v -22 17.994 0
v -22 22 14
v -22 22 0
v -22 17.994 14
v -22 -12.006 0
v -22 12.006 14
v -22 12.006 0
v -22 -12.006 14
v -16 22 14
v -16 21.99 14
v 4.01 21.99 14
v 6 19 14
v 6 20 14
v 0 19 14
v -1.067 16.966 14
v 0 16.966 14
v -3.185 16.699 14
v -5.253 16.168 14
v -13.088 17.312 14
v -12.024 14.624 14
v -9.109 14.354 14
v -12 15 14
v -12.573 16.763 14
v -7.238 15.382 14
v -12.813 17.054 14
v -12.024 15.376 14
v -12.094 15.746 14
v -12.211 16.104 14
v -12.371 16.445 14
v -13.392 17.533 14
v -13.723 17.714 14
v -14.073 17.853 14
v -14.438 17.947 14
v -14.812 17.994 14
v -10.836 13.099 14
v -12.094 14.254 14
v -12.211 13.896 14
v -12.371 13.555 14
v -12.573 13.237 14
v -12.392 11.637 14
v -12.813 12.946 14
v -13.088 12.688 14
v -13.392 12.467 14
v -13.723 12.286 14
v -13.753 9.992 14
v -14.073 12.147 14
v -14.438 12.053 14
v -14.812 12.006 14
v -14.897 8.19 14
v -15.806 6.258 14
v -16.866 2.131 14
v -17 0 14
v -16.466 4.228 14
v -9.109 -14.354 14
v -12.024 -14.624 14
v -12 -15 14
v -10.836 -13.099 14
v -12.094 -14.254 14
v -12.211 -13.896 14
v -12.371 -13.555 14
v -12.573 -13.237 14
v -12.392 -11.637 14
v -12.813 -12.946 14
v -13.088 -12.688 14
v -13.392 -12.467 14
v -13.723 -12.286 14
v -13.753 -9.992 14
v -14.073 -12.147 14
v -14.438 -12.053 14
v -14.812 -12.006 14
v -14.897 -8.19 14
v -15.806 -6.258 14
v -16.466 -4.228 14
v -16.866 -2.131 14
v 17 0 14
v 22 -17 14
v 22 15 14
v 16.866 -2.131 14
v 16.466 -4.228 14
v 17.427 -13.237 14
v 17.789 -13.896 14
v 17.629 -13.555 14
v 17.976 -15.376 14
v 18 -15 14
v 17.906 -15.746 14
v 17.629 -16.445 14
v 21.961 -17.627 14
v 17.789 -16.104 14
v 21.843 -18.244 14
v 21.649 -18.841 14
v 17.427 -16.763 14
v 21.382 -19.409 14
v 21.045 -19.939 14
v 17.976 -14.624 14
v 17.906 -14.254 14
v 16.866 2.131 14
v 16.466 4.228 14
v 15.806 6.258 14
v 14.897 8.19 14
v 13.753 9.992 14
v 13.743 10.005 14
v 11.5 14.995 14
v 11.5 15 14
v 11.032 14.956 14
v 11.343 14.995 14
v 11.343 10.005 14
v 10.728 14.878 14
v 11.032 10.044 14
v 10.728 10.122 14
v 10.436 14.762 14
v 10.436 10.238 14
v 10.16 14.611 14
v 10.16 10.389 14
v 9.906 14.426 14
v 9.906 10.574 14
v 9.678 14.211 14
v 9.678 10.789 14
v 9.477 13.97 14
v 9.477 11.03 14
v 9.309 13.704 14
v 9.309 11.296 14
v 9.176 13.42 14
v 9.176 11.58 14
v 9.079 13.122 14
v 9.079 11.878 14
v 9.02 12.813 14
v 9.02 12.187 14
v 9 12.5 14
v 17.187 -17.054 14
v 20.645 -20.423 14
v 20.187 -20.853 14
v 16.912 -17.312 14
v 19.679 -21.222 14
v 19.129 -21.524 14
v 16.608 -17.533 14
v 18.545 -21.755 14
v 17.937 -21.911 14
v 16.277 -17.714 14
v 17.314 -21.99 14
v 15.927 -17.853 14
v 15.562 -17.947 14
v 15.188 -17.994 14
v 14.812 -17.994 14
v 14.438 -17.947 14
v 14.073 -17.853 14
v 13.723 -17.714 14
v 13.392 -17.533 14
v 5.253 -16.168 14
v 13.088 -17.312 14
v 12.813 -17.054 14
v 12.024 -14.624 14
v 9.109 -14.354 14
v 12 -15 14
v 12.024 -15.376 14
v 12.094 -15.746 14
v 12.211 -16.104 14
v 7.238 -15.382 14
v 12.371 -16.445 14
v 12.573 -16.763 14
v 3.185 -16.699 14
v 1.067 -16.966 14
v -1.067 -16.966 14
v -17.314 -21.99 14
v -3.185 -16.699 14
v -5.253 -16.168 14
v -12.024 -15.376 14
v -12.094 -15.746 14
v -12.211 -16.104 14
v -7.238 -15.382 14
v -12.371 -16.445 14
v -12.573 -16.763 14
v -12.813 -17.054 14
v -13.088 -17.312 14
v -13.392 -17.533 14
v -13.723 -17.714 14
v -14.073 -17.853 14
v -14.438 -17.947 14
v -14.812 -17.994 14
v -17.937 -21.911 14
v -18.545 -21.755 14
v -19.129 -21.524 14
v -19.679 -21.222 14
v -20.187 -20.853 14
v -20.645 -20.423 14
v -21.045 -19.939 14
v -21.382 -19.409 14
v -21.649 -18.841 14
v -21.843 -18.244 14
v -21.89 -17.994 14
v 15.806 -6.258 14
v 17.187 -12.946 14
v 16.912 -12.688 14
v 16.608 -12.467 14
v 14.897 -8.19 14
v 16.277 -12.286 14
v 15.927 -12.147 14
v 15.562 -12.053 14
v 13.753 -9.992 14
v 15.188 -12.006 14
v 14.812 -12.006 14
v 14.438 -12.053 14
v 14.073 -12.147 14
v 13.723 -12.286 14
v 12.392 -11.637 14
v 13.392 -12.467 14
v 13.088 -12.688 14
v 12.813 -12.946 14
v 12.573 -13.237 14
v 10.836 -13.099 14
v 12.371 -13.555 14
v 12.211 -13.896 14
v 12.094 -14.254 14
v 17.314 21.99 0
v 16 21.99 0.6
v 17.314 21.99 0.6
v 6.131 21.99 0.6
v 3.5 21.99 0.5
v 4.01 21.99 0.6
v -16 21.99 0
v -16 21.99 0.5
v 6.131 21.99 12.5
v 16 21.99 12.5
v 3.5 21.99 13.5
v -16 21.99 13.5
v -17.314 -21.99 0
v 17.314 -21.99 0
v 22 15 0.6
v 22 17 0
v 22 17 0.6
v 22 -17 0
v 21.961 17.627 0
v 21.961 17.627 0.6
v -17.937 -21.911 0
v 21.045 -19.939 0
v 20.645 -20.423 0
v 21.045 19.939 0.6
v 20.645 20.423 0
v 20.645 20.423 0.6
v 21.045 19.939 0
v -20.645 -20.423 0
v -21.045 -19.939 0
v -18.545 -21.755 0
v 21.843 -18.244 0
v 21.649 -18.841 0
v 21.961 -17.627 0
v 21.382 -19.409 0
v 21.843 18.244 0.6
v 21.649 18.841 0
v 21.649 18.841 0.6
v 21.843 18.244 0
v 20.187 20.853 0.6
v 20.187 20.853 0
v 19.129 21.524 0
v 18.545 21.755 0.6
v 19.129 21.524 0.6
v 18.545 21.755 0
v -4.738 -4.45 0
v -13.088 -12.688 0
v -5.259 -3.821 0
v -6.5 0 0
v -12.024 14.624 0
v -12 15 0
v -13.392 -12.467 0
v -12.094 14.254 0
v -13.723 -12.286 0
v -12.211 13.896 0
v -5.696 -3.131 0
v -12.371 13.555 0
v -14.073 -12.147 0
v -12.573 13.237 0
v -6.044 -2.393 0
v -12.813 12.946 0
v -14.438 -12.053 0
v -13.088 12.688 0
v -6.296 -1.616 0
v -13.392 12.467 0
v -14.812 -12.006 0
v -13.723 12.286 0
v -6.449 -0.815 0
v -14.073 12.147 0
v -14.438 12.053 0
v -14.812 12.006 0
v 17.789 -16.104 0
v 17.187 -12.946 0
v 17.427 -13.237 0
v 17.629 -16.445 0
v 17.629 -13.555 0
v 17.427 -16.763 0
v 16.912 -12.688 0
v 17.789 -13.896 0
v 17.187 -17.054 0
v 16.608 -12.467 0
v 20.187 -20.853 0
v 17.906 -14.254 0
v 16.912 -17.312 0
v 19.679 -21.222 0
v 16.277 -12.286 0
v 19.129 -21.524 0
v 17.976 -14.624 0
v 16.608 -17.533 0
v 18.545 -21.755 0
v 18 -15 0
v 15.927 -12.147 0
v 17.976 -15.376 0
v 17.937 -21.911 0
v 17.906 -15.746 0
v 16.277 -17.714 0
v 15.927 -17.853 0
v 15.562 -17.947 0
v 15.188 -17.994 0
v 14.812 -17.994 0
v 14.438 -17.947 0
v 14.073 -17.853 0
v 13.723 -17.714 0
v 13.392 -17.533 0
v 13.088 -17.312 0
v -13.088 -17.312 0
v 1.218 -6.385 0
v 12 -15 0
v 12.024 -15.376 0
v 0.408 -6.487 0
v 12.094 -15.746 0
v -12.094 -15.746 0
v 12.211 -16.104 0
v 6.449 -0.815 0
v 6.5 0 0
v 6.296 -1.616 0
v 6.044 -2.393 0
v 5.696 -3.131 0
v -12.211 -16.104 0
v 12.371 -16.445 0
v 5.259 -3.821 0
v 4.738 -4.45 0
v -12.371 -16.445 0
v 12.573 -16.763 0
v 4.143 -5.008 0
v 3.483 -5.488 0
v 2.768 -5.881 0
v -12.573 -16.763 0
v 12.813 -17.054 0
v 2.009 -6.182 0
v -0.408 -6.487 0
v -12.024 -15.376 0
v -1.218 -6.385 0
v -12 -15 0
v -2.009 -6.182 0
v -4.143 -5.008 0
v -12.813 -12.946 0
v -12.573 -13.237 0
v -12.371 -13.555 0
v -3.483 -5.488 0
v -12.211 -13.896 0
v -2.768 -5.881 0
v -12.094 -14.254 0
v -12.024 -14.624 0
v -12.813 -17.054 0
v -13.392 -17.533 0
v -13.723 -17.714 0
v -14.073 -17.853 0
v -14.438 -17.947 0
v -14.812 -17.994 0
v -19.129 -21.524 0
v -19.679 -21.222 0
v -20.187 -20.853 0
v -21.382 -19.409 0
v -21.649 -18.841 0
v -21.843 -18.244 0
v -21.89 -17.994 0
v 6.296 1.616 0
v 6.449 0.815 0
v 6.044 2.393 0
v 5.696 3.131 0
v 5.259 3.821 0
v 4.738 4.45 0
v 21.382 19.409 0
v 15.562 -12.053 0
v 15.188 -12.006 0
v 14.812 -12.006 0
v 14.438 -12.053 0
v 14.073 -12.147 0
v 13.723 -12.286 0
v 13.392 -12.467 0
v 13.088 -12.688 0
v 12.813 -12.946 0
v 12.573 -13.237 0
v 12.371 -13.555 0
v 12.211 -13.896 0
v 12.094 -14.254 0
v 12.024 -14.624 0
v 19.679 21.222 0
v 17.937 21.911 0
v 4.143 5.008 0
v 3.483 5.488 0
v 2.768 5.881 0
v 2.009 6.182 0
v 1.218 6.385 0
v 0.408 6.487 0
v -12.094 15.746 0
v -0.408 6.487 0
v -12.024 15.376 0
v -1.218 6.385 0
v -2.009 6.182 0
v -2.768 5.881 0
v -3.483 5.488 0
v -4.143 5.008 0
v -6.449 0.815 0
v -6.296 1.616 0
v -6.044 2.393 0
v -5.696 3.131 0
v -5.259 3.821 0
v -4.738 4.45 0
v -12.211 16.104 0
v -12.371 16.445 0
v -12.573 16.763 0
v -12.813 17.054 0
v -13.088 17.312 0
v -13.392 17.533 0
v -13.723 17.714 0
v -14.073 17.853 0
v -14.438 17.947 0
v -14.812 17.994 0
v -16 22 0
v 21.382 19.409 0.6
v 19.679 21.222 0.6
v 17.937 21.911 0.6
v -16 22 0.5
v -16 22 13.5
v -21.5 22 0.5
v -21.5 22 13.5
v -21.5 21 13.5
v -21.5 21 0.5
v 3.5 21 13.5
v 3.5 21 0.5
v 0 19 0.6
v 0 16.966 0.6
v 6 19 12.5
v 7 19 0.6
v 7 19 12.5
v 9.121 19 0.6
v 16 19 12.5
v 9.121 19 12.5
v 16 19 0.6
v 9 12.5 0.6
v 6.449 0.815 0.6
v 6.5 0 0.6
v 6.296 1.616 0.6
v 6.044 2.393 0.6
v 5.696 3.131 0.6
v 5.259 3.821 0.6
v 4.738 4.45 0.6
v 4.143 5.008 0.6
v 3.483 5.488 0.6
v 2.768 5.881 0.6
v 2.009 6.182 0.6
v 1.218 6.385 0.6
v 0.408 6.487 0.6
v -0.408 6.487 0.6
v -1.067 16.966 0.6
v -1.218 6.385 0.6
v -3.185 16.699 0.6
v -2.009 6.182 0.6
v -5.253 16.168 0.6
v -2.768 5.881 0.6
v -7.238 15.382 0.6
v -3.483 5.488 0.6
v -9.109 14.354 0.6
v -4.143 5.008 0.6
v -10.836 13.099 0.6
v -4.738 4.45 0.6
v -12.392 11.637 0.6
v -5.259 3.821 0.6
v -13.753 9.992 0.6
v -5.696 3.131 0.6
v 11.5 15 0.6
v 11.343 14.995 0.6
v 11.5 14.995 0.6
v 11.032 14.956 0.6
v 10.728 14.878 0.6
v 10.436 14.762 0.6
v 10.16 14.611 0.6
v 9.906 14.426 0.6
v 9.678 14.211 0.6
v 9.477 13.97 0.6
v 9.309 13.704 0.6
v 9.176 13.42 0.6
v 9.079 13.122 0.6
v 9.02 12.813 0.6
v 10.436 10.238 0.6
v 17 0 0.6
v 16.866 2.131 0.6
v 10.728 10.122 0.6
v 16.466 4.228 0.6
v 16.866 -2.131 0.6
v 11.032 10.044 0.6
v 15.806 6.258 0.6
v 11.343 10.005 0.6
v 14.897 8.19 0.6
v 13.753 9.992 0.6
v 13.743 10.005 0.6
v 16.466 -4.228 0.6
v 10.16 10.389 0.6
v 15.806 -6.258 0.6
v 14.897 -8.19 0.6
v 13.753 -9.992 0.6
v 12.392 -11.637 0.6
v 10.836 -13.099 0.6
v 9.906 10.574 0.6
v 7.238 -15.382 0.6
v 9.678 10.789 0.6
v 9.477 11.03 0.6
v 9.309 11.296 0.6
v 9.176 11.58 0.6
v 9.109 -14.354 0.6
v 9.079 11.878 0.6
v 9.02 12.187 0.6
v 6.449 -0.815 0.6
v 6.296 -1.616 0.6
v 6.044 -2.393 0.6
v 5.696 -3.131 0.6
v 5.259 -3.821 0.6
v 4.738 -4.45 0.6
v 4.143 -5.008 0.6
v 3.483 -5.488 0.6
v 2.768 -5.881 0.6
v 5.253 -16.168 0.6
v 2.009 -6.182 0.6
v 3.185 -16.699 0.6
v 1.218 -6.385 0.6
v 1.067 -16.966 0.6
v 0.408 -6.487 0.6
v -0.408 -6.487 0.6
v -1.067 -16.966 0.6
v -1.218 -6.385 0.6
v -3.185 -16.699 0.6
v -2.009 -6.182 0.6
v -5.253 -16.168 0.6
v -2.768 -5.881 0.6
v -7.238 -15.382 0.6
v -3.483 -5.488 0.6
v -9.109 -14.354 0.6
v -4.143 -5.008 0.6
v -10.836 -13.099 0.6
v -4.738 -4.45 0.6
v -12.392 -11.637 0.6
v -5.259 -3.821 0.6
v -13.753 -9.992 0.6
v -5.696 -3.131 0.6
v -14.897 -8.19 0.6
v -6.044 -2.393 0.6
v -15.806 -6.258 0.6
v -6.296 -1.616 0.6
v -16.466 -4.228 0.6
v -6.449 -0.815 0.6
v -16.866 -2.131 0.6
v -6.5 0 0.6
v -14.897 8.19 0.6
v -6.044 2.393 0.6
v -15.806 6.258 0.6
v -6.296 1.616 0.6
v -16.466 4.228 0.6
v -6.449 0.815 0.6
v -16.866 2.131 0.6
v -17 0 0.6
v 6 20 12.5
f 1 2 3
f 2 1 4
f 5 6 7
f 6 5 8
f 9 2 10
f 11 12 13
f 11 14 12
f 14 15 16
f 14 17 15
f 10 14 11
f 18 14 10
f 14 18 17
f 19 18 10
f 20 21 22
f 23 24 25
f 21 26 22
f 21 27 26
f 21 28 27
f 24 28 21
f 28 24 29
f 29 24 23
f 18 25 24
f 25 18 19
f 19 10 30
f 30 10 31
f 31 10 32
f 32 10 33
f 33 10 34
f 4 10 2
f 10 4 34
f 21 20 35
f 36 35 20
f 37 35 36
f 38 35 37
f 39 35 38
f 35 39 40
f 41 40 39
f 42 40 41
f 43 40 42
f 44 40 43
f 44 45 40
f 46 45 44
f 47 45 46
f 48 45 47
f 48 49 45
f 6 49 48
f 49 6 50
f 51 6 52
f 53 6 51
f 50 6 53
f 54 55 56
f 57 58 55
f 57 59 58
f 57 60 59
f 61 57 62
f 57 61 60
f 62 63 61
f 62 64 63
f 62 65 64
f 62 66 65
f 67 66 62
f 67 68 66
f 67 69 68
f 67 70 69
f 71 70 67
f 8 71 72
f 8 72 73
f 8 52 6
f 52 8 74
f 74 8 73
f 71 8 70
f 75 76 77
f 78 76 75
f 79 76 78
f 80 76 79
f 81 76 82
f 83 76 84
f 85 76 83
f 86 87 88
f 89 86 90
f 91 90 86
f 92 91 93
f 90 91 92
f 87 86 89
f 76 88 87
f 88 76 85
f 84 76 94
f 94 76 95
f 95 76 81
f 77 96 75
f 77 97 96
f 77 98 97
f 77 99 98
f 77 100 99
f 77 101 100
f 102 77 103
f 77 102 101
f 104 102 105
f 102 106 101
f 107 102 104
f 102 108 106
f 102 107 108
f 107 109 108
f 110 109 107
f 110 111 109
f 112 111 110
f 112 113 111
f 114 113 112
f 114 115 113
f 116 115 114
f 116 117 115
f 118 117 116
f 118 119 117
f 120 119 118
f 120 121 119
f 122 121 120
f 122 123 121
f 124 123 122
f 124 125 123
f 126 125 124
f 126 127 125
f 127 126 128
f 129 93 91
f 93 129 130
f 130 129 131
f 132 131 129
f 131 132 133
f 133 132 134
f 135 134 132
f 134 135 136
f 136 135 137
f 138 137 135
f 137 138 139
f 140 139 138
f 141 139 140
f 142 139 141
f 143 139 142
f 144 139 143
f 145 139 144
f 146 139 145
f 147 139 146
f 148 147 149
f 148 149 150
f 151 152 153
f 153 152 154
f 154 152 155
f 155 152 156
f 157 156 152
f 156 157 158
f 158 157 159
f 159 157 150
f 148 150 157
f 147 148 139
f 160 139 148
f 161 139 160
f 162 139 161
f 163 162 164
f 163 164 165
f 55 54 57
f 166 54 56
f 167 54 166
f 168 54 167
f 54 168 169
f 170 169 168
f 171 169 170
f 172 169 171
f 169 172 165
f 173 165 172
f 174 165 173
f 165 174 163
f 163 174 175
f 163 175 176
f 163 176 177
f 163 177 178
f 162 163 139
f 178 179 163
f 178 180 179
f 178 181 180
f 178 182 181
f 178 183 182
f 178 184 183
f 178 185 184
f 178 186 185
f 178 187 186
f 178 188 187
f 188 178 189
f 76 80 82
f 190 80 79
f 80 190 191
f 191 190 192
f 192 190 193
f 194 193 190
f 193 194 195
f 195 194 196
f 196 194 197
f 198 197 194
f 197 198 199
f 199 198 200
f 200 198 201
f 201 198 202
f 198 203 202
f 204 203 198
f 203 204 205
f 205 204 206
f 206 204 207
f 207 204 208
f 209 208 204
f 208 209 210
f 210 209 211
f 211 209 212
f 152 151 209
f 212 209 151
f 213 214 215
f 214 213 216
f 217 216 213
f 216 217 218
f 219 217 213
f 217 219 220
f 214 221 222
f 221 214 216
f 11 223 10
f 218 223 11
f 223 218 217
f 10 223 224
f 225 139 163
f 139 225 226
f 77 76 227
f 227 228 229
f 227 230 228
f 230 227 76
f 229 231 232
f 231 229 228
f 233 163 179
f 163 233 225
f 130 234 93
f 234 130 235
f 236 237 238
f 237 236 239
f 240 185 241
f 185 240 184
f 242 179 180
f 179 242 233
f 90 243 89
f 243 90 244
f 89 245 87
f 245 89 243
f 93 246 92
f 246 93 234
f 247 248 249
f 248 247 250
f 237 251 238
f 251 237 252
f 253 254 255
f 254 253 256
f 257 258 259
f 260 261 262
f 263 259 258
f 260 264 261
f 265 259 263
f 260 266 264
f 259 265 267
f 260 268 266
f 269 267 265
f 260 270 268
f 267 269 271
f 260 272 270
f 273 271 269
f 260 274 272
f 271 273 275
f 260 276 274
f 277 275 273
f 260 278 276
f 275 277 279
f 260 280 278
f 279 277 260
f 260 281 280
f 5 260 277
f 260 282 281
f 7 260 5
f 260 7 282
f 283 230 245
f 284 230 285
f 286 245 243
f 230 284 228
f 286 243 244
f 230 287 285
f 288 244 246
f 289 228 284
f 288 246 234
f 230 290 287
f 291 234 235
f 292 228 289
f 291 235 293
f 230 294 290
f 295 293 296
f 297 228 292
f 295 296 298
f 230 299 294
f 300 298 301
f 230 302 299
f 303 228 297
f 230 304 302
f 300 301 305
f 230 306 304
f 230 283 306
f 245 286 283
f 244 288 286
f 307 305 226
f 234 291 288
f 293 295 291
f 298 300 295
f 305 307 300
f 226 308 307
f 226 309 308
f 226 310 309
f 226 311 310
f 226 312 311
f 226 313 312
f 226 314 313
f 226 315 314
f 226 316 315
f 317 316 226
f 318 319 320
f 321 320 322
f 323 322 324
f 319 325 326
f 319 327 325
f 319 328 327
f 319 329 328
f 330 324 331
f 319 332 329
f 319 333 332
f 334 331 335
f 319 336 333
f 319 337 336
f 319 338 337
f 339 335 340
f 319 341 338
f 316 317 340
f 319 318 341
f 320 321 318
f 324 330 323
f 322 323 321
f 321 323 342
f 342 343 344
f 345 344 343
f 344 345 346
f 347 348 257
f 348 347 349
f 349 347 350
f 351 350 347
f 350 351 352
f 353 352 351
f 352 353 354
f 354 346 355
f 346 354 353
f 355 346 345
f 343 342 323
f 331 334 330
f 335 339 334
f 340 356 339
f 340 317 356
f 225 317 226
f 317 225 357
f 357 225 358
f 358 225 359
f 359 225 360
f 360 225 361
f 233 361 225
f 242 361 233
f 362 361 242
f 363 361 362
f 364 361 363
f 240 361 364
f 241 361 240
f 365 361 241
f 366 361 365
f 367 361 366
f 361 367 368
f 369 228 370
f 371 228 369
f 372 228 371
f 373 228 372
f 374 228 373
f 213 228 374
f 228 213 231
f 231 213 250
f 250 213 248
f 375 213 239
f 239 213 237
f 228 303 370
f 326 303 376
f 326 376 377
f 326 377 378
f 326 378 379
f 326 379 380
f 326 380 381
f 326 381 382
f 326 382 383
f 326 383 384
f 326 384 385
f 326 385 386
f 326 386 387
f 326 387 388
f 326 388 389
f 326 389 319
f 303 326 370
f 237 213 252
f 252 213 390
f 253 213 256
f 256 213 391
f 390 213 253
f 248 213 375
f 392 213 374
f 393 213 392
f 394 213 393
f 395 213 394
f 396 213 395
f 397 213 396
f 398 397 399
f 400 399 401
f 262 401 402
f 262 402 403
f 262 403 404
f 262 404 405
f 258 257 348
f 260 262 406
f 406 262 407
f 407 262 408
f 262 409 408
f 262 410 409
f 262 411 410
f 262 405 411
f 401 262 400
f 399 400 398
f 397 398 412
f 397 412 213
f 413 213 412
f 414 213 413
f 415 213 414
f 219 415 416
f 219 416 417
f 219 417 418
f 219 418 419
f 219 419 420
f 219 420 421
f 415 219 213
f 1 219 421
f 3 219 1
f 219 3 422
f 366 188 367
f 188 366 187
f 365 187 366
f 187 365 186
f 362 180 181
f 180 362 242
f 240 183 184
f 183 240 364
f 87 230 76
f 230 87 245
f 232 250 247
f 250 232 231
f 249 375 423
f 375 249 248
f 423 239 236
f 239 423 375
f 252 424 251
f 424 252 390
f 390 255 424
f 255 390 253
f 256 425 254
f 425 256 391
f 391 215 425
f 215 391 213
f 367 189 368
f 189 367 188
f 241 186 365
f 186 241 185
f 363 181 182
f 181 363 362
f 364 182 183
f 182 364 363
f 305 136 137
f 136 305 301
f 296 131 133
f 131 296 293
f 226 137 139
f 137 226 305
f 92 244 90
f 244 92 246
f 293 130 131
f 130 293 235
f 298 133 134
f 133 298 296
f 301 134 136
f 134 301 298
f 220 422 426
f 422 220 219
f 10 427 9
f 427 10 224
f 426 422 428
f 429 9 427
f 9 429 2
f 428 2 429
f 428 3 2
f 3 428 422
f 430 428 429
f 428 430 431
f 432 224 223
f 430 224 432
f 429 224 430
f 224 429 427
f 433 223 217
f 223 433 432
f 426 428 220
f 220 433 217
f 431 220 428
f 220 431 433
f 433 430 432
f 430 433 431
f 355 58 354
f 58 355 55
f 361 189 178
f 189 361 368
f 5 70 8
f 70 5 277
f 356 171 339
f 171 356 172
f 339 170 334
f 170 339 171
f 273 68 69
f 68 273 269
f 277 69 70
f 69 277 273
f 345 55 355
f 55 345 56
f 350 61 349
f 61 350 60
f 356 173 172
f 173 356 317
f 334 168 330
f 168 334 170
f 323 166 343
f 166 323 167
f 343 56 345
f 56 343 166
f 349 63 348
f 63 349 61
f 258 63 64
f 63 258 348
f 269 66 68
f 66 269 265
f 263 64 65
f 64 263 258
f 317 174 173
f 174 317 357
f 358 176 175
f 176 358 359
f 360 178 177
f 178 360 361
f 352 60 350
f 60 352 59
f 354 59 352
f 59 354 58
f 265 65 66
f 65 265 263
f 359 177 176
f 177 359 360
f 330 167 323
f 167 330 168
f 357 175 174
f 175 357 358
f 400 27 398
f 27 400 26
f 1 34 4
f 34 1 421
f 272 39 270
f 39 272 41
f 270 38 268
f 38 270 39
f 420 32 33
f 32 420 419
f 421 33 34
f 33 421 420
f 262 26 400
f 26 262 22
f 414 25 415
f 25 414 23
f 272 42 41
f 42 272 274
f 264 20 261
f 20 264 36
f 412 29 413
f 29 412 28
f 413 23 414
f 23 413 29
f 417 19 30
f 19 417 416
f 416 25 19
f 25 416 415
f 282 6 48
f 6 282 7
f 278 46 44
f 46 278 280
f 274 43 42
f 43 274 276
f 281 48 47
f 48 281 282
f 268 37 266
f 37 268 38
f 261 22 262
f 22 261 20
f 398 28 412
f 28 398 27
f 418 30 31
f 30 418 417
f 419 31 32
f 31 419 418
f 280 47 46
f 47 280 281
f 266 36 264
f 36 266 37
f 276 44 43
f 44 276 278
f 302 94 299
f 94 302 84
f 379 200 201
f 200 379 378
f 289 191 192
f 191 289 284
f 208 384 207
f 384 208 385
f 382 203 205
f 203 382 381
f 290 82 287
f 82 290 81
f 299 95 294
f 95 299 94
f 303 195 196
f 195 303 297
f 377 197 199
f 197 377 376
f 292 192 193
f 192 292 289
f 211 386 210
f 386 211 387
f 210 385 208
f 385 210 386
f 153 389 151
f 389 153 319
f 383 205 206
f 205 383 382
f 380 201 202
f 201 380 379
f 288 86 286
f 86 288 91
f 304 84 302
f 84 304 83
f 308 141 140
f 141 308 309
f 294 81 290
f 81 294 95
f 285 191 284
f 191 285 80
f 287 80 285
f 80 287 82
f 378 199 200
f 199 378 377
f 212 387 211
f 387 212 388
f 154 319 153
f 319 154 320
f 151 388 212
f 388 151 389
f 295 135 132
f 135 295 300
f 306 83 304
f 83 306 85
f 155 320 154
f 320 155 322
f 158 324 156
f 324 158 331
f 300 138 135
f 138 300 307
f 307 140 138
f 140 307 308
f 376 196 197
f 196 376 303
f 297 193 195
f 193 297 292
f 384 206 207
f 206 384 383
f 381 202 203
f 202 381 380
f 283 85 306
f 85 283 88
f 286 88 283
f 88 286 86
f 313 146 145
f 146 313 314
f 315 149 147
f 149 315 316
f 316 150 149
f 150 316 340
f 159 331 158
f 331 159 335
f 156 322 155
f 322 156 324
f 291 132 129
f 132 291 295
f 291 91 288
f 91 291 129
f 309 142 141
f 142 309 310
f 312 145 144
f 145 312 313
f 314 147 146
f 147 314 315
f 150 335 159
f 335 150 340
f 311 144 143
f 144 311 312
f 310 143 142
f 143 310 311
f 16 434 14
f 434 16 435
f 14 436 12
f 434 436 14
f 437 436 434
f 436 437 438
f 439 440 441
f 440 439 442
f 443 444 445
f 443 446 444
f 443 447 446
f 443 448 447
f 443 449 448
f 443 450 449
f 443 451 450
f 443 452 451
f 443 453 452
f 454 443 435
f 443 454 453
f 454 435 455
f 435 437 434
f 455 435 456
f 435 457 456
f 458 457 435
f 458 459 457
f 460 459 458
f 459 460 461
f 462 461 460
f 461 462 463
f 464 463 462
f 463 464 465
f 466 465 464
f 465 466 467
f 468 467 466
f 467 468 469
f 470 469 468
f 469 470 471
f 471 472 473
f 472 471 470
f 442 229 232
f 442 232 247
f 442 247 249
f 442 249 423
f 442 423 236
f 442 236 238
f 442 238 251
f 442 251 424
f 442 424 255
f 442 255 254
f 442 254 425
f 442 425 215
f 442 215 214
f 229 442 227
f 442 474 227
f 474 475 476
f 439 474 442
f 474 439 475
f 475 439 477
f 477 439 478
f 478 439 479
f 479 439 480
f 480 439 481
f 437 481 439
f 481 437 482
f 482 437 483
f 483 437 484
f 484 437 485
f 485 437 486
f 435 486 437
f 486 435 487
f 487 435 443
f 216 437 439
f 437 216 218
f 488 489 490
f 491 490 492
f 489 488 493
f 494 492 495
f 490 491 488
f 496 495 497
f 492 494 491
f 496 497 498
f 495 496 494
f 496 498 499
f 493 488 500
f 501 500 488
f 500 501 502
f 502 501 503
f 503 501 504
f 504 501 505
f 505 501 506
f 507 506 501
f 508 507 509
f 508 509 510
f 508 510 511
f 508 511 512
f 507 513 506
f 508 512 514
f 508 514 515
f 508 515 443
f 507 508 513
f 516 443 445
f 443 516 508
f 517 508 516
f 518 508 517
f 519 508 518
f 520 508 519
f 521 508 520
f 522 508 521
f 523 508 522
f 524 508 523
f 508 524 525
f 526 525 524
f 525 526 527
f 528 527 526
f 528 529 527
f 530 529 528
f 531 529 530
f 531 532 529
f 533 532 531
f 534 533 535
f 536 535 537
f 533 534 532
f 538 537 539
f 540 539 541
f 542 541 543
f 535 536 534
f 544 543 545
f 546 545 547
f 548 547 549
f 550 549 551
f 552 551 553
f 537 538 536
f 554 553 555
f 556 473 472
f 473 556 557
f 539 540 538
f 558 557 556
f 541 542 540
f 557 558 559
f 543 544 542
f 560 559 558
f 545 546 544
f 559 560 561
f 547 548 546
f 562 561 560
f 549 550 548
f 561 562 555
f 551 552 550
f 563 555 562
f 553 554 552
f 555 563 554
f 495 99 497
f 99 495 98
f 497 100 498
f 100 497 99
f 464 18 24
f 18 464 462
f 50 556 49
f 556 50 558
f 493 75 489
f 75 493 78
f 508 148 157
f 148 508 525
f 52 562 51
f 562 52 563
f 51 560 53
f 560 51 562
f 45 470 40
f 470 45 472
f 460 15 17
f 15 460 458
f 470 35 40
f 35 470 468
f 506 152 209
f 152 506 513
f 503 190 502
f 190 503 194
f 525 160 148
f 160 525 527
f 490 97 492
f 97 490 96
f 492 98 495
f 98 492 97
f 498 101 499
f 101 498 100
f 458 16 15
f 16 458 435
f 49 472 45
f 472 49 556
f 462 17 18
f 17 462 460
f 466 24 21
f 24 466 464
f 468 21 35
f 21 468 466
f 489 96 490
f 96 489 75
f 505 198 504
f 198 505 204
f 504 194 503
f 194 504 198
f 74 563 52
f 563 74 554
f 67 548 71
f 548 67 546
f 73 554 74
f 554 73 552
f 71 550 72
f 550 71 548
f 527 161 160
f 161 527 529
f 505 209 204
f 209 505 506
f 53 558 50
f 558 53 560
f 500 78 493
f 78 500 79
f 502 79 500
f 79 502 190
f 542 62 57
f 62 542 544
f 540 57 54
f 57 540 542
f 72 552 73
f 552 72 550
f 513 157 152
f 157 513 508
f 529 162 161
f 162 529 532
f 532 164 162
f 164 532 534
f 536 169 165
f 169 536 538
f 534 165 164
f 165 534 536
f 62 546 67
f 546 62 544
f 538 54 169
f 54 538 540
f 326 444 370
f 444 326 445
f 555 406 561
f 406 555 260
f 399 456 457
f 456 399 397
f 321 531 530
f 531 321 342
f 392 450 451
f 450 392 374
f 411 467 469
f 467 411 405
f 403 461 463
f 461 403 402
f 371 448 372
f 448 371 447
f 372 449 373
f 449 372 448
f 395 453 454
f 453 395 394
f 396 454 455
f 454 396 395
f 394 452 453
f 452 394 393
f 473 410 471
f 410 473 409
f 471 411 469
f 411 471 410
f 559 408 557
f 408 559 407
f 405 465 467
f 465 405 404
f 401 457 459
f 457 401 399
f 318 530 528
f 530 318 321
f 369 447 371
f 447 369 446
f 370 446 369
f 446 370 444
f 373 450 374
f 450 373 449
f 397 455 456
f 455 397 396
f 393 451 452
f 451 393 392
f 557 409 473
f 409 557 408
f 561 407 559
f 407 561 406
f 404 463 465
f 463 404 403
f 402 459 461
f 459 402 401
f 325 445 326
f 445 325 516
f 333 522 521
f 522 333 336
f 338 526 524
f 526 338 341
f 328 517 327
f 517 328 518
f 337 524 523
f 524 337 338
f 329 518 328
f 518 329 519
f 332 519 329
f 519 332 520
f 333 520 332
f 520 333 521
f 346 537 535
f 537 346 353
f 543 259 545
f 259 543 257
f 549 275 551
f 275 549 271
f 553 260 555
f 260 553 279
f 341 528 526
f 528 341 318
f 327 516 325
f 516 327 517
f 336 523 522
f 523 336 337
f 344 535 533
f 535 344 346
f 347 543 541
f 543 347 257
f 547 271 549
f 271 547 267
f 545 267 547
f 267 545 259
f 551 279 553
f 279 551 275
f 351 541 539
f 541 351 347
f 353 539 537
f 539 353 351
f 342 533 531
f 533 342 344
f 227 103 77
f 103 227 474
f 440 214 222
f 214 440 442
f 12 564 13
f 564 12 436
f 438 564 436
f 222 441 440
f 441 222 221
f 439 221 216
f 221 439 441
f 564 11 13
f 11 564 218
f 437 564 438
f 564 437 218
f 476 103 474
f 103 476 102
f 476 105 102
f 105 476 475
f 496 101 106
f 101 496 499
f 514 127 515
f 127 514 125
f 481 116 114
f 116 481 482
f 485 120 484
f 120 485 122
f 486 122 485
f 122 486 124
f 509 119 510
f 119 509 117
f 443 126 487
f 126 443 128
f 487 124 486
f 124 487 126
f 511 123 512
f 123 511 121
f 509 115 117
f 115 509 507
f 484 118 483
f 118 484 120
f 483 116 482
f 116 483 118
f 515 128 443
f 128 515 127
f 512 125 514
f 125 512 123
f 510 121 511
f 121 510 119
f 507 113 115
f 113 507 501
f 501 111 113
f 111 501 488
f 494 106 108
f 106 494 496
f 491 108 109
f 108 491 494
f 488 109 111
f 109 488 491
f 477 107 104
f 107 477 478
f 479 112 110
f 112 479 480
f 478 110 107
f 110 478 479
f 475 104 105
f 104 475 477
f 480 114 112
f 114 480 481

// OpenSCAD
$fn = 50;


union() {
	difference() {
		union() {
			translate(v = [0, 0, 0]) {
				rotate(a = [0, 0, 0]) {
					hull() {
						translate(v = [-17.0000000000, 17.0000000000, 0]) {
							rotate(a = [0, 0, 0]) {
								translate(v = [0, 0, 0]) {
									rotate(a = [0, 0, 0]) {
										cylinder(h = 14, r = 5);
									}
								}
							}
						}
						translate(v = [17.0000000000, 17.0000000000, 0]) {
							rotate(a = [0, 0, 0]) {
								translate(v = [0, 0, 0]) {
									rotate(a = [0, 0, 0]) {
										cylinder(h = 14, r = 5);
									}
								}
							}
						}
						translate(v = [-17.0000000000, -17.0000000000, 0]) {
							rotate(a = [0, 0, 0]) {
								translate(v = [0, 0, 0]) {
									rotate(a = [0, 0, 0]) {
										cylinder(h = 14, r = 5);
									}
								}
							}
						}
						translate(v = [17.0000000000, -17.0000000000, 0]) {
							rotate(a = [0, 0, 0]) {
								translate(v = [0, 0, 0]) {
									rotate(a = [0, 0, 0]) {
										cylinder(h = 14, r = 5);
									}
								}
							}
						}
					}
				}
			}
			translate(v = [-22.0000000000, 16.0000000000, 0]) {
				rotate(a = [0, 0, 0]) {
					cube(size = [6, 6, 14]);
				}
			}
		}
		union() {
			#translate(v = [-21.5000000000, 21.0000000000, 0.5000000000]) {
				rotate(a = [0, 0, 0]) {
					cube(size = [25, 1, 13.0000000000]);
				}
			}
			translate(v = [-22.5000000000, -15.0000000000, -125]) {
				rotate(a = [0, 0, 0]) {
					hull() {
						translate(v = [7.5000000000, 0, 0]) {
							rotate(a = [0, 0, 0]) {
								translate(v = [0, 0, 0]) {
									rotate(a = [0, 0, 0]) {
										cylinder(h = 250, r = 3.0000000000);
									}
								}
							}
						}
						translate(v = [-7.5000000000, 0, 0]) {
							rotate(a = [0, 0, 0]) {
								translate(v = [0, 0, 0]) {
									rotate(a = [0, 0, 0]) {
										cylinder(h = 250, r = 3.0000000000);
									}
								}
							}
						}
					}
				}
			}
			translate(v = [-22.5000000000, 15.0000000000, -125]) {
				rotate(a = [0, 0, 0]) {
					hull() {
						translate(v = [7.5000000000, 0, 0]) {
							rotate(a = [0, 0, 0]) {
								translate(v = [0, 0, 0]) {
									rotate(a = [0, 0, 0]) {
										cylinder(h = 250, r = 3.0000000000);
									}
								}
							}
						}
						translate(v = [-7.5000000000, 0, 0]) {
							rotate(a = [0, 0, 0]) {
								translate(v = [0, 0, 0]) {
									rotate(a = [0, 0, 0]) {
										cylinder(h = 250, r = 3.0000000000);
									}
								}
							}
						}
					}
				}
			}
			translate(v = [15.0000000000, -15.0000000000, -125.0000000000]) {
				rotate(a = [0, 0, 0]) {
					cylinder(h = 250, r = 3.0000000000);
				}
			}
			translate(v = [0.0000000000, 11.0000000000, 0.6000000000]) {
				rotate(a = [0, 0, 0]) {
					cube(size = [11, 8, 16.4000000000]);
				}
			}
			translate(v = [0, 0, 0.6000000000]) {
				rotate(a = [0, 0, 0]) {
					cylinder(h = 16.4000000000, r = 17.0000000000);
				}
			}
			translate(v = [0, 0, -7.0000000000]) {
				rotate(a = [0, 0, 0]) {
					cylinder(h = 14, r = 6.5000000000);
				}
			}
			translate(v = [0.0000000000, 15.0000000000, 0.6000000000]) {
				rotate(a = [0, 0, 0]) {
					cube(size = [22.0000000000, 4, 16.4000000000]);
				}
			}
			translate(v = [16.0000000000, 15.0000000000, 0.6000000000]) {
				rotate(a = [0, 0, 0]) {
					cube(size = [6, 7, 16.4000000000]);
				}
			}
			translate(v = [6.0000000000, 15.0000000000, 12.5000000000]) {
				rotate(a = [0, 0, 0]) {
					cube(size = [16, 7, 1.5000000000]);
				}
			}
			translate(v = [3.2500000000, 22.7500000000, 0.6000000000]) {
				rotate(a = [0, 0, -45]) {
					cube(size = [7.5000000000, 1.5000000000, 16.4000000000]);
				}
			}
			translate(v = [2.5000000000, 10.0000000000, 0.6000000000]) {
				rotate(a = [0, 0, 0]) {
					cube(size = [9.0000000000, 5, 13.4000000000]);
				}
			}
		}
	}
	union() {
		translate(v = [14, 12.5000000000, 0]) {
			rotate(a = [0, 0, 0]) {
				hull() {
					translate(v = [2.5000000000, 0, 0]) {
						rotate(a = [0, 0, 0]) {
							#translate(v = [0, 0, 0]) {
								rotate(a = [0, 0, 0]) {
									cylinder(h = 14, r = 2.5000000000);
								}
							}
						}
					}
					translate(v = [-2.5000000000, 0, 0]) {
						rotate(a = [0, 0, 0]) {
							#translate(v = [0, 0, 0]) {
								rotate(a = [0, 0, 0]) {
									cylinder(h = 14, r = 2.5000000000);
								}
							}
						}
					}
				}
			}
		}
	}
}
